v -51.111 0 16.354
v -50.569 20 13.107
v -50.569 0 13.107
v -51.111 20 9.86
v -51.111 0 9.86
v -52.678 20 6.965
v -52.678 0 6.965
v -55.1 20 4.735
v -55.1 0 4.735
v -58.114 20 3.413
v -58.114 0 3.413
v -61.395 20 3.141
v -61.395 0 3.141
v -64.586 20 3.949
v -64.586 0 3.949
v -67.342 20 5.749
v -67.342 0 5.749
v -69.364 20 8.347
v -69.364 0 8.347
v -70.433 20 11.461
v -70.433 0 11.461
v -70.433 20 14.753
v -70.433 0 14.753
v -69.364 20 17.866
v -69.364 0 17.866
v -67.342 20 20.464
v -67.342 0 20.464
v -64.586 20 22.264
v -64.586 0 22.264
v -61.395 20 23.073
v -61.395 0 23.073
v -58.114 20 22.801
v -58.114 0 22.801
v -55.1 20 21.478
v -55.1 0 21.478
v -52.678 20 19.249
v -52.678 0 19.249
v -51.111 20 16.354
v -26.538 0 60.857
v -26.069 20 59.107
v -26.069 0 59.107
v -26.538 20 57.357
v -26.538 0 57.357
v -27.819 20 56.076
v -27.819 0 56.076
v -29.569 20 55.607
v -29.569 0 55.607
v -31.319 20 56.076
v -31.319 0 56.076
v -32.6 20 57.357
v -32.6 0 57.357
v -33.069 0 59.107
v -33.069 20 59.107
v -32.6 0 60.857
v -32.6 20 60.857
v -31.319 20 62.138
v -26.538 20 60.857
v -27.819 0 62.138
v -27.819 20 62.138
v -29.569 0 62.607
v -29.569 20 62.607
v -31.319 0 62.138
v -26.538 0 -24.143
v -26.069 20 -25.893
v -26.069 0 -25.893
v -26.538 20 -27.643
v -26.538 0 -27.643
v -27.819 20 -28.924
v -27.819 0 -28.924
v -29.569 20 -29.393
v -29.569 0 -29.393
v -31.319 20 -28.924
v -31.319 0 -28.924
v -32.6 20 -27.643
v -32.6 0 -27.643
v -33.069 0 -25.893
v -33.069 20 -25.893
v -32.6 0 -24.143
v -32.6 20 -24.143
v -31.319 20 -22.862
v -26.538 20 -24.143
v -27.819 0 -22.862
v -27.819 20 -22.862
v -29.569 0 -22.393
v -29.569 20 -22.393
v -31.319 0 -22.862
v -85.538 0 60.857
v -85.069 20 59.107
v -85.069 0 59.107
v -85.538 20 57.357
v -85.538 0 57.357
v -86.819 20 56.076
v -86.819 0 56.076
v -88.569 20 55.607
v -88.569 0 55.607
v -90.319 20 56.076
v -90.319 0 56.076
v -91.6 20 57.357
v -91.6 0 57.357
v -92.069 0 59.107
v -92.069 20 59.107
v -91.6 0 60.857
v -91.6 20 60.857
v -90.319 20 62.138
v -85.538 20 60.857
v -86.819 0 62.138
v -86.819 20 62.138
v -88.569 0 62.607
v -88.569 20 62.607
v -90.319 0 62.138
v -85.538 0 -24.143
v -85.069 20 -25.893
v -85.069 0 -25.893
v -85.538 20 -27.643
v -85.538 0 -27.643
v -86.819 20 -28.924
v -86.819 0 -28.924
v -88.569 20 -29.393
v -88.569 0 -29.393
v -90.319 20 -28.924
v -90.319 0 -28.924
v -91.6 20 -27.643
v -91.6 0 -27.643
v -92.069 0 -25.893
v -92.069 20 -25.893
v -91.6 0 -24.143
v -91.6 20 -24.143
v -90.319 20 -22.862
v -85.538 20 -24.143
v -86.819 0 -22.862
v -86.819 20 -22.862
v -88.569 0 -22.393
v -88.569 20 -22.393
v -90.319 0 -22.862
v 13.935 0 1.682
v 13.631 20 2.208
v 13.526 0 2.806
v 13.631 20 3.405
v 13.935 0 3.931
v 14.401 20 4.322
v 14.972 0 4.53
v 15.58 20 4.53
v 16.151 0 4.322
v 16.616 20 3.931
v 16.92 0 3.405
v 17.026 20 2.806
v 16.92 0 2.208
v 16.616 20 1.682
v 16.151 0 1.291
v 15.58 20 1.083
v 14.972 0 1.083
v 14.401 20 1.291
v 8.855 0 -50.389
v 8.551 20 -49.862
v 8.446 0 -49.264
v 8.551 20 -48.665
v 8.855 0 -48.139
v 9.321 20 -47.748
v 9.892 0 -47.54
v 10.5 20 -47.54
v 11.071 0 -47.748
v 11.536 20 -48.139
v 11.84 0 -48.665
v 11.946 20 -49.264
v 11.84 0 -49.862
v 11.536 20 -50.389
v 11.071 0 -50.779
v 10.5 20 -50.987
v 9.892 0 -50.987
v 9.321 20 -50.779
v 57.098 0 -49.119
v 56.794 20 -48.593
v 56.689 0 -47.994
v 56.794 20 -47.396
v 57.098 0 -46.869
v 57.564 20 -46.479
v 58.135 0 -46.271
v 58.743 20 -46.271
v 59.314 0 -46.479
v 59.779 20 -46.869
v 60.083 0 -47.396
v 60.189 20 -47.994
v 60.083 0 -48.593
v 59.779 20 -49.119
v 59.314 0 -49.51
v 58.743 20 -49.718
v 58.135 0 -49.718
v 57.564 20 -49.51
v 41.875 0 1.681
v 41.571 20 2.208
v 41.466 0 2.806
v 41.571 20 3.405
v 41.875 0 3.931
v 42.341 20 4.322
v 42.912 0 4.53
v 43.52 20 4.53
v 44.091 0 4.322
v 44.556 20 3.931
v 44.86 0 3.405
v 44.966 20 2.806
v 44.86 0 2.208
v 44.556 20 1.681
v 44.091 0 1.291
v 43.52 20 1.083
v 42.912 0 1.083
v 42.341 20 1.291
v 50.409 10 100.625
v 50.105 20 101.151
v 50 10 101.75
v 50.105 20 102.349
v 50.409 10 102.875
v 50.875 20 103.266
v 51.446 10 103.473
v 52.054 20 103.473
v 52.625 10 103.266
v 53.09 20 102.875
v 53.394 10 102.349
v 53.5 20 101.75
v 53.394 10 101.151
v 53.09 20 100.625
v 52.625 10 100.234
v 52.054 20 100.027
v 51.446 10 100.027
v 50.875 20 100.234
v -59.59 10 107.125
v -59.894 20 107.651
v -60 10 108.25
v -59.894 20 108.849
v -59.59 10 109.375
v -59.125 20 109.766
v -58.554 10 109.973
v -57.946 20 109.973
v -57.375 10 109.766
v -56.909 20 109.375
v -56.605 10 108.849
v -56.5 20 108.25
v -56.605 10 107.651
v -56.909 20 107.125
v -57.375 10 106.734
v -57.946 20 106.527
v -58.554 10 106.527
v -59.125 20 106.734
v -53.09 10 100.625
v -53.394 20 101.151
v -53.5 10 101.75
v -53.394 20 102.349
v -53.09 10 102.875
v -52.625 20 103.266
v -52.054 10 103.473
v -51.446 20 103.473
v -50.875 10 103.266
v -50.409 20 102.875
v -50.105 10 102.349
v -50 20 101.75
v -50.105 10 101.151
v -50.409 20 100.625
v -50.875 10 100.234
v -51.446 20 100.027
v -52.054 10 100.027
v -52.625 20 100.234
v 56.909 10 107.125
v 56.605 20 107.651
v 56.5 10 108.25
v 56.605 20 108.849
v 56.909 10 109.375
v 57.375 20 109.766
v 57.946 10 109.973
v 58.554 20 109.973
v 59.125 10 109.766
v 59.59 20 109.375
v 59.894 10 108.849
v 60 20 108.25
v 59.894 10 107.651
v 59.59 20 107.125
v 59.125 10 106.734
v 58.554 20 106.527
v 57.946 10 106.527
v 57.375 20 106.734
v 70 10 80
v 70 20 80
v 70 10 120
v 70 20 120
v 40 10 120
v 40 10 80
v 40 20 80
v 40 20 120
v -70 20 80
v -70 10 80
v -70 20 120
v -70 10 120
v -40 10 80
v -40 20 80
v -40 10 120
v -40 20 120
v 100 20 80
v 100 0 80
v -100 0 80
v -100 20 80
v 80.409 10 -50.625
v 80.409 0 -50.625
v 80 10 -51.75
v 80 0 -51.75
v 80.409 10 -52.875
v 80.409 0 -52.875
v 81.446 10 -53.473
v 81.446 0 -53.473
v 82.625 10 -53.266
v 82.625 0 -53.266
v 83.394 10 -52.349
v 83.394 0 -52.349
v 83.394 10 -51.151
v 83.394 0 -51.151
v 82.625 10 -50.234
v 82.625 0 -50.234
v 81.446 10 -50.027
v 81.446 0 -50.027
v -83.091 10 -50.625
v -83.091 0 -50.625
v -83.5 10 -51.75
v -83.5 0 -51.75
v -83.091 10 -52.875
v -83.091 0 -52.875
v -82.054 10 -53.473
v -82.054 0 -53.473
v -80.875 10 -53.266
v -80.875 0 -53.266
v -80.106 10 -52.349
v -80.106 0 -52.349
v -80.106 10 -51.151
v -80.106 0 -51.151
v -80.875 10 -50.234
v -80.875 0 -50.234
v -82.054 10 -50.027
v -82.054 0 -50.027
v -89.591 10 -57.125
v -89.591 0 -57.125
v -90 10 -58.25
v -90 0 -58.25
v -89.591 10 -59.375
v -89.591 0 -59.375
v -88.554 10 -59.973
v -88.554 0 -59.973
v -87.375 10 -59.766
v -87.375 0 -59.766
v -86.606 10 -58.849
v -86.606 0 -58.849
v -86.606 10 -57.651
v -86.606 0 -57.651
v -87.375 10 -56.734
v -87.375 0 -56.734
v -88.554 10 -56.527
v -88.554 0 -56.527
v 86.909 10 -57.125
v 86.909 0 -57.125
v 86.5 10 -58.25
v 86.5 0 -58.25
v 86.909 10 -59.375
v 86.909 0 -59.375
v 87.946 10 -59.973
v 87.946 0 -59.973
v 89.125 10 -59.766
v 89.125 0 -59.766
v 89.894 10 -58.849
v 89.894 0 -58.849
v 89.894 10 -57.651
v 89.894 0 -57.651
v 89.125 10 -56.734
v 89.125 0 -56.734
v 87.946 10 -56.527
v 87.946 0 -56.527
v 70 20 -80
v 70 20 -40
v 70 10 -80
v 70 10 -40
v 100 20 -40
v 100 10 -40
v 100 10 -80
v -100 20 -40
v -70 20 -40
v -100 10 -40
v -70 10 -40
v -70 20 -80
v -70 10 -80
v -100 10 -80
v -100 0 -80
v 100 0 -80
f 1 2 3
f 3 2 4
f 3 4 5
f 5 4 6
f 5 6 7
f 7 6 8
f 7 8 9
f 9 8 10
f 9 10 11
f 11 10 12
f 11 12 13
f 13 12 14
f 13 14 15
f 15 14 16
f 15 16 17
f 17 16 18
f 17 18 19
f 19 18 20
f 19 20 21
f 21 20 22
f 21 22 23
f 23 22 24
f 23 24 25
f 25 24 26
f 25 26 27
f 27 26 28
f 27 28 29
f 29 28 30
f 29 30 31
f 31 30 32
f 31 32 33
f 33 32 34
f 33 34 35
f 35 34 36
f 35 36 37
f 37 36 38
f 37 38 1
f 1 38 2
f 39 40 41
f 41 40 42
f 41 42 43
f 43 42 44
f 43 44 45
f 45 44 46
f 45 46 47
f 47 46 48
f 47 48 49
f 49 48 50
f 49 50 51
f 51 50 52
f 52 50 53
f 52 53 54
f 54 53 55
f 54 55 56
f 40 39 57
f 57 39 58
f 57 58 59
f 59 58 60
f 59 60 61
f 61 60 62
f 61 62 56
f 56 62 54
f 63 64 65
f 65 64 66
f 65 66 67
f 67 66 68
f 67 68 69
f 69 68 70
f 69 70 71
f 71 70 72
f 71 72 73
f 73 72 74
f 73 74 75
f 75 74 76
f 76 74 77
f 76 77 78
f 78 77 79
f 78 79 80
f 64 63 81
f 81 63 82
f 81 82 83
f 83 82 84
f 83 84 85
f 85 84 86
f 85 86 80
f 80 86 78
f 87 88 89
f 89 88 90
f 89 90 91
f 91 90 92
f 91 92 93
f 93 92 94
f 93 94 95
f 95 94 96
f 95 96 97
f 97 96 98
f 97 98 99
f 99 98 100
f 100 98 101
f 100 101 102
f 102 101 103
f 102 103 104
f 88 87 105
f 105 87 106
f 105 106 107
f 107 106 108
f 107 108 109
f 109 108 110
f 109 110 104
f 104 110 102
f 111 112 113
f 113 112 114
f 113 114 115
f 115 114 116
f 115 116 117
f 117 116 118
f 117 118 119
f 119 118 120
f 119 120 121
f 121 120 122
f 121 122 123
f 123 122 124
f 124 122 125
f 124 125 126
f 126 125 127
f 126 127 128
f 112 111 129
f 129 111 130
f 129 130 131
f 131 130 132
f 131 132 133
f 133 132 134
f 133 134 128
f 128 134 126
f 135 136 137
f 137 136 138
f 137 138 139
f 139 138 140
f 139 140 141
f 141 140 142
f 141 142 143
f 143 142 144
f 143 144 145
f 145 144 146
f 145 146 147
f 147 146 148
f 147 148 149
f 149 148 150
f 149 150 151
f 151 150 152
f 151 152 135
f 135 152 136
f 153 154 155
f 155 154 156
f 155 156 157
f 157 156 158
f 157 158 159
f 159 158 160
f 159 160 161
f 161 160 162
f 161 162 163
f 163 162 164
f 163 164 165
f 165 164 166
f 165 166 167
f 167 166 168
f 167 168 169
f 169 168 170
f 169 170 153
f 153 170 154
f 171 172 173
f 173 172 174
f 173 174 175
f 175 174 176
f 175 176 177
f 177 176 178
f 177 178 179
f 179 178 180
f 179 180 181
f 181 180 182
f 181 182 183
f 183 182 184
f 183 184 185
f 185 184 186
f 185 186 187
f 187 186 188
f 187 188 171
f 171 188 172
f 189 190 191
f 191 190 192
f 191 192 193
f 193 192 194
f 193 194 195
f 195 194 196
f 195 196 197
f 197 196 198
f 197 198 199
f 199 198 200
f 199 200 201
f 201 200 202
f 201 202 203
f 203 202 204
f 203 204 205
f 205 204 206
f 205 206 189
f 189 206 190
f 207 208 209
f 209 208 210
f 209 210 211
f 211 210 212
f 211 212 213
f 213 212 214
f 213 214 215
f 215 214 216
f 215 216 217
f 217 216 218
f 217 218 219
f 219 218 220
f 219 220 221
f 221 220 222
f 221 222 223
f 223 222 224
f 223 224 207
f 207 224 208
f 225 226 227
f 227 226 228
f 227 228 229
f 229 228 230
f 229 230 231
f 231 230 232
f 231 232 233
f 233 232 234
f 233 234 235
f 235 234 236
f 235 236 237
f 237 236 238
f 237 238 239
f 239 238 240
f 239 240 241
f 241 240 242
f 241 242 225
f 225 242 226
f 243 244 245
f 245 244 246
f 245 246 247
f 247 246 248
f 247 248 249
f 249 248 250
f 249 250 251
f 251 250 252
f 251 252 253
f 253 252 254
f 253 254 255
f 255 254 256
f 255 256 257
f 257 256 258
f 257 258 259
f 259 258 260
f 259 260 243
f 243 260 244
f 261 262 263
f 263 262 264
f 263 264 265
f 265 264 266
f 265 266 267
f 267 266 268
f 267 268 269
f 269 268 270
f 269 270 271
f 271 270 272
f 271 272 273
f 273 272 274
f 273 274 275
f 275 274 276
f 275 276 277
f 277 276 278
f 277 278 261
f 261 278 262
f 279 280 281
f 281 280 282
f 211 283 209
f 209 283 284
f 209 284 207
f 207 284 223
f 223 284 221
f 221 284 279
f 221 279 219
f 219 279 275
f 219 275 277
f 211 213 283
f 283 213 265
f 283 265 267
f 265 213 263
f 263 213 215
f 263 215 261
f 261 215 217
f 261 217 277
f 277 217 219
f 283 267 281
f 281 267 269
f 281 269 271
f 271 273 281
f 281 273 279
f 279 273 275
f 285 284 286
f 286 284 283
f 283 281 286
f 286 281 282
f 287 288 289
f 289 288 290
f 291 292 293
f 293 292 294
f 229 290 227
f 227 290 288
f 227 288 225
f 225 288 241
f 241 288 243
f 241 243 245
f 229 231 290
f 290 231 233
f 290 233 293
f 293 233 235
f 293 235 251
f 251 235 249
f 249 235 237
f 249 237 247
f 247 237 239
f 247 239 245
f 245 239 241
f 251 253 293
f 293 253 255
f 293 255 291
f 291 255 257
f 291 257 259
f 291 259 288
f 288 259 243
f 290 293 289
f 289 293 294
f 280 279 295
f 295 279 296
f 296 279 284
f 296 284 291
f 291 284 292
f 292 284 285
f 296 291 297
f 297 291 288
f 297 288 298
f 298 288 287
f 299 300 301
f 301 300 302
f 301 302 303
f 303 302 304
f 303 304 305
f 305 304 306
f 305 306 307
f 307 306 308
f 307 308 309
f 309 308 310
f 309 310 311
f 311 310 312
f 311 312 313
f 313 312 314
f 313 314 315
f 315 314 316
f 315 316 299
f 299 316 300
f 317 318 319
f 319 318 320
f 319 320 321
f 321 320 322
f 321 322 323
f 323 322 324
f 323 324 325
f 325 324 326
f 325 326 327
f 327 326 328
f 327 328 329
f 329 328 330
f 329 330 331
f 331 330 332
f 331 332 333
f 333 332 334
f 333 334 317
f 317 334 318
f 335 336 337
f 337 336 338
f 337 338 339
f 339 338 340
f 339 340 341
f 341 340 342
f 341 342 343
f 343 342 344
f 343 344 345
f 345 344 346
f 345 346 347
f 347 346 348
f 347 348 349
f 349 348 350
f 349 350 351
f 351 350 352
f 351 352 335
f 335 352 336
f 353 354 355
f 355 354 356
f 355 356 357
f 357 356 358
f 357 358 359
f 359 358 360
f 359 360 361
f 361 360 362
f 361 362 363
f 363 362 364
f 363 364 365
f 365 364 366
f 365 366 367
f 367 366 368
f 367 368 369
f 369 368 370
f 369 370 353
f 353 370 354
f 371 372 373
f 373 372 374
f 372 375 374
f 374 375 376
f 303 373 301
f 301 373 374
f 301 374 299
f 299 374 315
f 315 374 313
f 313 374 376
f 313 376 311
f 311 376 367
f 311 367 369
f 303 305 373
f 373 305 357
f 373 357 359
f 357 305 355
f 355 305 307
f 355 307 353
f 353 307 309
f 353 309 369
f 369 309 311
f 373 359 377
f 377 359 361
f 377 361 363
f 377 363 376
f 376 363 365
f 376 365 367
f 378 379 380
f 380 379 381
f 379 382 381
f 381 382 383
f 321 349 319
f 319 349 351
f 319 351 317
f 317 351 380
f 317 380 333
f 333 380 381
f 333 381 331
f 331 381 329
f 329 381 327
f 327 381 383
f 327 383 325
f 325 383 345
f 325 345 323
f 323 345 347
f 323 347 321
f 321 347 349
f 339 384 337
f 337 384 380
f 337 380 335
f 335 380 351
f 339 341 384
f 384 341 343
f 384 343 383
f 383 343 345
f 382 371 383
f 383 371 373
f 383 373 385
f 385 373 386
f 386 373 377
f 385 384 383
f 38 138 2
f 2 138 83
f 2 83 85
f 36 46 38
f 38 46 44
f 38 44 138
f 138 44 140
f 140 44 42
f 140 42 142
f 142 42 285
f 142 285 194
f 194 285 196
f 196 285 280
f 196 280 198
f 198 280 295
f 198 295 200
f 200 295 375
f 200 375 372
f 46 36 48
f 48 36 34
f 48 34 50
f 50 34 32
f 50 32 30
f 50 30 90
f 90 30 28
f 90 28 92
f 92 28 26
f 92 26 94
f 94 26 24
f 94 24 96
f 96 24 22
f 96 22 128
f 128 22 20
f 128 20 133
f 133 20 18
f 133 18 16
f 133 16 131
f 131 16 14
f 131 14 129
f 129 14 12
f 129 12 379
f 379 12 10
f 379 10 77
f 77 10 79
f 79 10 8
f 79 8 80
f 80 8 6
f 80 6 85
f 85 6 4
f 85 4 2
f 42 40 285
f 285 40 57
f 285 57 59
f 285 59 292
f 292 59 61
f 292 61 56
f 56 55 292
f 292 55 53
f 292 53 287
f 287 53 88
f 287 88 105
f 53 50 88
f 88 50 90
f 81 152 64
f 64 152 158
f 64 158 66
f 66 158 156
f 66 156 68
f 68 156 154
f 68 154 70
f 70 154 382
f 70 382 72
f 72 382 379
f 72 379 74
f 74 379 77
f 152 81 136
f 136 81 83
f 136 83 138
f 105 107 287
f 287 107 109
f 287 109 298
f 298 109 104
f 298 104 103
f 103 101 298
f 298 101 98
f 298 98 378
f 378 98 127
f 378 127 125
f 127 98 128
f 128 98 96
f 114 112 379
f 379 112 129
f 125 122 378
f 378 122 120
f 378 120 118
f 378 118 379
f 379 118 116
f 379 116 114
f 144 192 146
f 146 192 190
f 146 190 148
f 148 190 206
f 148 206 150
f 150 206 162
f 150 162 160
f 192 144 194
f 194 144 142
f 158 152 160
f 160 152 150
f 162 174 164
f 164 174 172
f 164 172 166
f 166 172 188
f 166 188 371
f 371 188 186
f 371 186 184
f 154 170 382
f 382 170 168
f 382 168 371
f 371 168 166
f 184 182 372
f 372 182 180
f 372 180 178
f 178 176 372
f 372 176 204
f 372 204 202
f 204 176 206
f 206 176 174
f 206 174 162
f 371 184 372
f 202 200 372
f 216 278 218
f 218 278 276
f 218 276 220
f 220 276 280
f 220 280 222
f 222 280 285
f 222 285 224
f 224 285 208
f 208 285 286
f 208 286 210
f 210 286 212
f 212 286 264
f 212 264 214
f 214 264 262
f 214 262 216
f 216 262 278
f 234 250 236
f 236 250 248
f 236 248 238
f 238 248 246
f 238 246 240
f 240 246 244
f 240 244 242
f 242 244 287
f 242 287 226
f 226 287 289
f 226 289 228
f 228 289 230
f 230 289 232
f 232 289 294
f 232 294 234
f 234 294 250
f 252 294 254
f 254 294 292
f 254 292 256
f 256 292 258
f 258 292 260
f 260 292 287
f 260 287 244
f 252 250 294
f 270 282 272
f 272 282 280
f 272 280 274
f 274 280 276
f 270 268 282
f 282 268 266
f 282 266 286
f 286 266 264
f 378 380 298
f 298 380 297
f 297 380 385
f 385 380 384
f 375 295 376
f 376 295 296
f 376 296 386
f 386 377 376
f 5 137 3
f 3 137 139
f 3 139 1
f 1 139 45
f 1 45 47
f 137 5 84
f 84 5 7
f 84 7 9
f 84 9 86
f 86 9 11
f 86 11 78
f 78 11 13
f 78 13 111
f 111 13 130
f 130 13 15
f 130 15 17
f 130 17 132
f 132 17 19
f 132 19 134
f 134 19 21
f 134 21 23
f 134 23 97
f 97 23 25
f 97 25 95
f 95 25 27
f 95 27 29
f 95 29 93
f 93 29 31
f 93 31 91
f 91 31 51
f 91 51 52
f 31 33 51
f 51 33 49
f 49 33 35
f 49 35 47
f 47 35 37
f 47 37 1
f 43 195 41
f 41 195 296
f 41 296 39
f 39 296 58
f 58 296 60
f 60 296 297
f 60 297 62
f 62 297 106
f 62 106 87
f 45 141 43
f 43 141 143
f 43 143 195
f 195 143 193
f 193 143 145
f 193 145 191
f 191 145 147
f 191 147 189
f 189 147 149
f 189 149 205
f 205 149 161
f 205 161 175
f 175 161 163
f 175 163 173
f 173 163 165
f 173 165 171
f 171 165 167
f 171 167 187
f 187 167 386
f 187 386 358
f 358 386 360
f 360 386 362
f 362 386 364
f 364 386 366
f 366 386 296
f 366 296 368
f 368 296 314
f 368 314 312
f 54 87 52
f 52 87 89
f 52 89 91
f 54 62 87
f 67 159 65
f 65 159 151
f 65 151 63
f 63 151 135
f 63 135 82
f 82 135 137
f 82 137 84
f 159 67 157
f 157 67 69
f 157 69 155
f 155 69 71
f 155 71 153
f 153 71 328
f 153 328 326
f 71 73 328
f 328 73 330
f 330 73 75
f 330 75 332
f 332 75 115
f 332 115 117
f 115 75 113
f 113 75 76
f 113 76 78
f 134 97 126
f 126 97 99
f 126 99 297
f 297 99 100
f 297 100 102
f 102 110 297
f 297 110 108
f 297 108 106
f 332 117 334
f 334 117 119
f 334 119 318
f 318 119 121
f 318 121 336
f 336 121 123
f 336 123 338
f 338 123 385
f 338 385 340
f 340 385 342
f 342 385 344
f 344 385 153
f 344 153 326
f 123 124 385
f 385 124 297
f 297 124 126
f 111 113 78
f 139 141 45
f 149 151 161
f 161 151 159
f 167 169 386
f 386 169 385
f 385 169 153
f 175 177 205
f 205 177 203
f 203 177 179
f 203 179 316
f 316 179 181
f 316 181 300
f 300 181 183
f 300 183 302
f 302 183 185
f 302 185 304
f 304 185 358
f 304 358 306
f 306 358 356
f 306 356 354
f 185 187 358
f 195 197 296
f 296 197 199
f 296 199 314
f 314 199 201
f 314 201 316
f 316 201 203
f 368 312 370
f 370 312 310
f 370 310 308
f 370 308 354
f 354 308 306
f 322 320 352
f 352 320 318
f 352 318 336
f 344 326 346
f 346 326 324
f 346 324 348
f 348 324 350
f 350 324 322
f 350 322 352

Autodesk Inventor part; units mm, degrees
ref_plane "YZ Plane" through (0, 0, 0) normal (1, 0, 0) x (0, 1, 0)
ref_plane "XZ Plane" through (0, 0, 0) normal (0, 1, 0) x (-1, 0, 0)
ref_plane "XY Plane" through (0, 0, 0) normal (0, 0, 1) x (1, 0, 0)
sketch "Boceto1" plane through (0, 0, 0) normal (0, 1, 0) x (-1, 0, 0)
  line L0 (100, 80) -> (-100, 80)
  line L1 (-100, 80) -> (-100, -80)
  line L2 (-100, -80) -> (100, -80)
  line L3 (100, -80) -> (100, 80)
  line L4 (100, 80) -> (-100, -80) construction
  line L5 (-100, 80) -> (100, -80) construction
  point P0 (0, 0)
  dimension "d0" = 200
  dimension "d1" = 160
extrude "Extrusión1" add sketch "Boceto1" along normal blind 20
sketch "Boceto2" plane through (0, 20, 0) normal (0, 1, 0) x (1, 0, 0)
  line L0 (-100, 80) -> (-100, -80) projected
  line L1 (-100, 80) -> (-70, 80)
  line L2 (-70, 80) -> (-70, 40)
  line L3 (-70, 40) -> (-100, 40)
  line L4 (-100, 40) -> (-100, 80)
  line L5 (100, 80) -> (-100, 80) projected
  line L6 (0, 80) -> (0, 40)
  line L7 (100, 80) -> (70, 80)
  line L8 (70, 80) -> (70, 40)
  line L9 (70, 40) -> (100, 40)
  line L10 (100, 40) -> (100, 80)
  point P0 (0, 0)
  dimension "d4" = 30
  dimension "d5" = 40
extrude "Extrusión2" cut sketch "Boceto2" against normal blind 10
sketch "Boceto3" plane through (0, 20, 0) normal (0, 1, 0) x (1, 0, 0)
  line L0 (-70, 80) -> (-70, 40) projected
  line L1 (-70, 80.0001) -> (-70, 40)
  line L2 (-70, 40) -> (-100, 40) projected
  line L3 (-100, 40) -> (-100, 80.0001)
  line L4 (-100, 40) -> (-70, 40)
  line L5 (-70, 40) -> (-70, 80)
  line L6 (-70, 80) -> (-100, 80)
  line L7 (-100, 80) -> (-100, 40)
  circle A0 centre (-88.25, 58.25) radius 1.75
  circle A1 centre (-81.75, 51.75) radius 1.75
  line L8 (100, 80) -> (-100, 80) projected
  line L9 (0, 80) -> (0, 56.5)
  circle A2 centre (88.25, 58.25) radius 1.75
  circle A3 centre (81.75, 51.75) radius 1.75
  point P0 (0, 0)
  point P1 (-64.3507, 80)
  point P2 (-74.3507, 0)
  point P3 (-85, 80)
  dimension "d23" = 21.75
  dimension "d24" = 11.75
  dimension "d26" = 11.75
hole "Agujero1" at (-81.75, 20, -51.75) at (-88.25, 20, -58.25) at (81.75, 20, -51.75) at (88.25, 20, -58.25) direction (0, -1, 0) diameter 3.5 end through all
sketch "Boceto4" plane through (-100, 0, 80) normal (0, 0, 1) x (1, 0, 0)
  line L0 (30, 20) -> (60, 20)
  line L1 (60, 20) -> (60, 10)
  line L2 (60, 10) -> (30, 10)
  line L3 (30, 10) -> (30, 20)
  line L4 (0, 0) -> (0, 20) projected
  line L5 (100, 0) -> (100, 10)
  line L6 (170, 20) -> (140, 20)
  line L7 (140, 20) -> (140, 10)
  line L8 (140, 10) -> (170, 10)
  line L9 (170, 10) -> (170, 20)
  dimension "d34" = 30
  dimension "d35" = 10
  dimension "d36" = 30
extrude "Extrusión3" add sketch "Boceto4" along normal blind 40
sketch "Boceto5" plane through (0, 20, 0) normal (0, 1, 0) x (1, 0, 0)
  line L0 (59.9999, -50) -> (69.9999, -50)
  line L1 (49.9999, -101.75) -> (49.9999, -79.9497)
  line L2 (59.9999, -108.25) -> (59.9999, -50)
  line L3 (40, -80) -> (69.9999, -80)
  line L4 (49.9999, -79.9497) -> (40, -80)
  circle A0 centre (51.7499, -101.75) radius 1.75
  circle A1 centre (58.2499, -108.25) radius 1.75
  line L5 (69.9999, -80) -> (69.9999, -120)
  line L6 (40, -120) -> (40, -80)
  line L7 (69.9999, -120) -> (40, -120)
  line L8 (0, -50) -> (0, -71.75)
  line L9 (-40, -120) -> (-40, -80)
  line L10 (-49.9999, -101.75) -> (-49.9999, -79.9497)
  circle A2 centre (-51.7499, -101.75) radius 1.75
  circle A3 centre (-58.2499, -108.25) radius 1.75
  line L11 (-40, -80) -> (-69.9999, -80)
  line L12 (-69.9999, -120) -> (-40, -120)
  line L13 (-69.9999, -80) -> (-69.9999, -120)
  line L14 (-59.9999, -108.25) -> (-59.9999, -50)
  line L15 (-40, -120) -> (-69.9999, -120)
  line L16 (-69.9999, -80) -> (-69.9999, -120)
  line L17 (-40, -120) -> (-70, -120) projected
  line L18 (-40, -80) -> (-40, -120) projected
  line L19 (-59.9999, -110) -> (-49.9999, -110)
  line L20 (-49.9999, -110) -> (-49.9999, -100)
  line L21 (-49.9999, -100) -> (-59.9999, -100)
  line L22 (-59.9999, -100) -> (-59.9999, -110)
  line L23 (-100, 40) -> (-100, -80) projected
  point P0 (0, 0)
  point P1 (-56.75, -68.25)
  point P2 (-63.25, -61.75)
  point P3 (63.25, -61.75)
  point P4 (56.75, -68.25)
  dimension "d45" = 3.5
  dimension "d46" = 3.5
  dimension "d39" = 10
  dimension "d40" = 10
  dimension "d41" = 40
  dimension "d42" = 0
  dimension "d43" = 6.5
  dimension "d44" = 6.5
  dimension "d47" = 11.7499
  dimension "d48" = 11.75
  dimension "d49" = 0
  dimension "d50" = 11.75
  dimension "d51" = 0
  dimension "d97" = 40.0001
hole "Agujero2" at (-58.2499, 20, 108.25) at (-51.7499, 20, 101.75) at (51.7499, 20, 101.75) at (58.2499, 20, 108.25) direction (0, -1, 0) diameter 3.5 end through all
sketch "Boceto6" plane through (0, 20, 0) normal (0, 1, 0) x (1, 0, 0)
  circle A0 centre (-60.569, -13.1067) radius 10
  circle A1 centre (-29.569, -59.1067) radius 3.5
  line L0 (-60.569, -13.1067) -> (-39.0083, -13.1067)
  circle A2 centre (-29.569, 25.8933) radius 3.5
  circle A3 centre (-88.569, 25.8933) radius 3.5
  circle A4 centre (-88.569, -59.1067) radius 3.5
  line L1 (8.592, 54.4846) -> (60.592, 54.4846)
  line L2 (60.592, 54.4846) -> (60.592, -15.5154)
  line L3 (60.592, -15.5154) -> (8.592, -15.5154)
  line L4 (8.592, -15.5154) -> (8.592, 54.4846)
  line L5 (8.592, -15.5154) -> (30.592, -15.5154)
  line L6 (30.592, -15.5154) -> (30.592, -57.5154)
  line L7 (30.592, -57.5154) -> (8.592, -57.5154)
  line L8 (8.592, -57.5154) -> (8.592, -15.5154)
  line L9 (1.8175, -0.4091) -> (1.8182, -2.9066)
  circle A5 centre (15.2757, -2.8065) radius 1.75
  line L10 (8.2823, 15.5794) -> (8.2823, -30.8467)
  circle A6 centre (43.2156, -2.8061) radius 1.75
  line L11 (53.8882, 4.6711) -> (53.8882, 2.1733)
  circle A7 centre (10.1956, 49.2639) radius 1.75
  line L12 (52.6186, -43.5722) -> (52.6186, -46.0699)
  circle A8 centre (58.4389, 47.9943) radius 1.75
  line L13 (60.3523, 47.3505) -> (8.2823, 47.3505)
  line L14 (60.3523, 47.3505) -> (60.3523, -0.8928)
  line L15 (34.3173, 47.3505) -> (34.3173, 23.2289)
  point P0 (0, 0)
  point P1 (-60.569, -16.6067)
  point P2 (33.6213, -21.4557)
  dimension "d59" = 7
  dimension "d60" = 7
  dimension "d61" = 7
  dimension "d62" = 39
  dimension "d63" = 46
  dimension "d64" = 59
  dimension "d65" = 46
  dimension "d66" = 39
  dimension "d67" = 59
  dimension "d68" = 52
  dimension "d69" = 70
  dimension "d70" = 22
  dimension "d71" = 42
  dimension "d72" = 3.5
  dimension "d73" = 3.5
  dimension "d74" = 3.5
  dimension "d75" = 3.5
hole "Agujero3" at (10.1956, 20, -49.2639) at (58.4389, 20, -47.9943) at (15.2757, 20, 2.8065) at (43.2156, 20, 2.8061) direction (0, -1, 0) diameter 3.5 end through all
sketch "Boceto7" plane through (0, 20, 0) normal (0, 1, 0) x (1, 0, 0)
  circle A0 centre (-60.569, -13.1067) radius 10
  circle A1 centre (-29.569, -59.1067) radius 3.5
  line L0 (-60.569, -13.1067) -> (-39.0083, -13.1067)
  circle A2 centre (-29.569, 25.8933) radius 3.5
  circle A3 centre (-88.569, 25.8933) radius 3.5
  circle A4 centre (-88.569, -59.1067) radius 3.5
  point P0 (0, 0)
  point P1 (-60.569, -16.6067)
  dimension "d83" = 7
  dimension "d84" = 7
  dimension "d85" = 7
  dimension "d86" = 39
  dimension "d87" = 46
  dimension "d88" = 59
  dimension "d89" = 46
  dimension "d90" = 39
  dimension "d91" = 59
extrude "Extrusión4" cut sketch "Boceto7" against normal blind 20
properties part number "base_mid_20"
